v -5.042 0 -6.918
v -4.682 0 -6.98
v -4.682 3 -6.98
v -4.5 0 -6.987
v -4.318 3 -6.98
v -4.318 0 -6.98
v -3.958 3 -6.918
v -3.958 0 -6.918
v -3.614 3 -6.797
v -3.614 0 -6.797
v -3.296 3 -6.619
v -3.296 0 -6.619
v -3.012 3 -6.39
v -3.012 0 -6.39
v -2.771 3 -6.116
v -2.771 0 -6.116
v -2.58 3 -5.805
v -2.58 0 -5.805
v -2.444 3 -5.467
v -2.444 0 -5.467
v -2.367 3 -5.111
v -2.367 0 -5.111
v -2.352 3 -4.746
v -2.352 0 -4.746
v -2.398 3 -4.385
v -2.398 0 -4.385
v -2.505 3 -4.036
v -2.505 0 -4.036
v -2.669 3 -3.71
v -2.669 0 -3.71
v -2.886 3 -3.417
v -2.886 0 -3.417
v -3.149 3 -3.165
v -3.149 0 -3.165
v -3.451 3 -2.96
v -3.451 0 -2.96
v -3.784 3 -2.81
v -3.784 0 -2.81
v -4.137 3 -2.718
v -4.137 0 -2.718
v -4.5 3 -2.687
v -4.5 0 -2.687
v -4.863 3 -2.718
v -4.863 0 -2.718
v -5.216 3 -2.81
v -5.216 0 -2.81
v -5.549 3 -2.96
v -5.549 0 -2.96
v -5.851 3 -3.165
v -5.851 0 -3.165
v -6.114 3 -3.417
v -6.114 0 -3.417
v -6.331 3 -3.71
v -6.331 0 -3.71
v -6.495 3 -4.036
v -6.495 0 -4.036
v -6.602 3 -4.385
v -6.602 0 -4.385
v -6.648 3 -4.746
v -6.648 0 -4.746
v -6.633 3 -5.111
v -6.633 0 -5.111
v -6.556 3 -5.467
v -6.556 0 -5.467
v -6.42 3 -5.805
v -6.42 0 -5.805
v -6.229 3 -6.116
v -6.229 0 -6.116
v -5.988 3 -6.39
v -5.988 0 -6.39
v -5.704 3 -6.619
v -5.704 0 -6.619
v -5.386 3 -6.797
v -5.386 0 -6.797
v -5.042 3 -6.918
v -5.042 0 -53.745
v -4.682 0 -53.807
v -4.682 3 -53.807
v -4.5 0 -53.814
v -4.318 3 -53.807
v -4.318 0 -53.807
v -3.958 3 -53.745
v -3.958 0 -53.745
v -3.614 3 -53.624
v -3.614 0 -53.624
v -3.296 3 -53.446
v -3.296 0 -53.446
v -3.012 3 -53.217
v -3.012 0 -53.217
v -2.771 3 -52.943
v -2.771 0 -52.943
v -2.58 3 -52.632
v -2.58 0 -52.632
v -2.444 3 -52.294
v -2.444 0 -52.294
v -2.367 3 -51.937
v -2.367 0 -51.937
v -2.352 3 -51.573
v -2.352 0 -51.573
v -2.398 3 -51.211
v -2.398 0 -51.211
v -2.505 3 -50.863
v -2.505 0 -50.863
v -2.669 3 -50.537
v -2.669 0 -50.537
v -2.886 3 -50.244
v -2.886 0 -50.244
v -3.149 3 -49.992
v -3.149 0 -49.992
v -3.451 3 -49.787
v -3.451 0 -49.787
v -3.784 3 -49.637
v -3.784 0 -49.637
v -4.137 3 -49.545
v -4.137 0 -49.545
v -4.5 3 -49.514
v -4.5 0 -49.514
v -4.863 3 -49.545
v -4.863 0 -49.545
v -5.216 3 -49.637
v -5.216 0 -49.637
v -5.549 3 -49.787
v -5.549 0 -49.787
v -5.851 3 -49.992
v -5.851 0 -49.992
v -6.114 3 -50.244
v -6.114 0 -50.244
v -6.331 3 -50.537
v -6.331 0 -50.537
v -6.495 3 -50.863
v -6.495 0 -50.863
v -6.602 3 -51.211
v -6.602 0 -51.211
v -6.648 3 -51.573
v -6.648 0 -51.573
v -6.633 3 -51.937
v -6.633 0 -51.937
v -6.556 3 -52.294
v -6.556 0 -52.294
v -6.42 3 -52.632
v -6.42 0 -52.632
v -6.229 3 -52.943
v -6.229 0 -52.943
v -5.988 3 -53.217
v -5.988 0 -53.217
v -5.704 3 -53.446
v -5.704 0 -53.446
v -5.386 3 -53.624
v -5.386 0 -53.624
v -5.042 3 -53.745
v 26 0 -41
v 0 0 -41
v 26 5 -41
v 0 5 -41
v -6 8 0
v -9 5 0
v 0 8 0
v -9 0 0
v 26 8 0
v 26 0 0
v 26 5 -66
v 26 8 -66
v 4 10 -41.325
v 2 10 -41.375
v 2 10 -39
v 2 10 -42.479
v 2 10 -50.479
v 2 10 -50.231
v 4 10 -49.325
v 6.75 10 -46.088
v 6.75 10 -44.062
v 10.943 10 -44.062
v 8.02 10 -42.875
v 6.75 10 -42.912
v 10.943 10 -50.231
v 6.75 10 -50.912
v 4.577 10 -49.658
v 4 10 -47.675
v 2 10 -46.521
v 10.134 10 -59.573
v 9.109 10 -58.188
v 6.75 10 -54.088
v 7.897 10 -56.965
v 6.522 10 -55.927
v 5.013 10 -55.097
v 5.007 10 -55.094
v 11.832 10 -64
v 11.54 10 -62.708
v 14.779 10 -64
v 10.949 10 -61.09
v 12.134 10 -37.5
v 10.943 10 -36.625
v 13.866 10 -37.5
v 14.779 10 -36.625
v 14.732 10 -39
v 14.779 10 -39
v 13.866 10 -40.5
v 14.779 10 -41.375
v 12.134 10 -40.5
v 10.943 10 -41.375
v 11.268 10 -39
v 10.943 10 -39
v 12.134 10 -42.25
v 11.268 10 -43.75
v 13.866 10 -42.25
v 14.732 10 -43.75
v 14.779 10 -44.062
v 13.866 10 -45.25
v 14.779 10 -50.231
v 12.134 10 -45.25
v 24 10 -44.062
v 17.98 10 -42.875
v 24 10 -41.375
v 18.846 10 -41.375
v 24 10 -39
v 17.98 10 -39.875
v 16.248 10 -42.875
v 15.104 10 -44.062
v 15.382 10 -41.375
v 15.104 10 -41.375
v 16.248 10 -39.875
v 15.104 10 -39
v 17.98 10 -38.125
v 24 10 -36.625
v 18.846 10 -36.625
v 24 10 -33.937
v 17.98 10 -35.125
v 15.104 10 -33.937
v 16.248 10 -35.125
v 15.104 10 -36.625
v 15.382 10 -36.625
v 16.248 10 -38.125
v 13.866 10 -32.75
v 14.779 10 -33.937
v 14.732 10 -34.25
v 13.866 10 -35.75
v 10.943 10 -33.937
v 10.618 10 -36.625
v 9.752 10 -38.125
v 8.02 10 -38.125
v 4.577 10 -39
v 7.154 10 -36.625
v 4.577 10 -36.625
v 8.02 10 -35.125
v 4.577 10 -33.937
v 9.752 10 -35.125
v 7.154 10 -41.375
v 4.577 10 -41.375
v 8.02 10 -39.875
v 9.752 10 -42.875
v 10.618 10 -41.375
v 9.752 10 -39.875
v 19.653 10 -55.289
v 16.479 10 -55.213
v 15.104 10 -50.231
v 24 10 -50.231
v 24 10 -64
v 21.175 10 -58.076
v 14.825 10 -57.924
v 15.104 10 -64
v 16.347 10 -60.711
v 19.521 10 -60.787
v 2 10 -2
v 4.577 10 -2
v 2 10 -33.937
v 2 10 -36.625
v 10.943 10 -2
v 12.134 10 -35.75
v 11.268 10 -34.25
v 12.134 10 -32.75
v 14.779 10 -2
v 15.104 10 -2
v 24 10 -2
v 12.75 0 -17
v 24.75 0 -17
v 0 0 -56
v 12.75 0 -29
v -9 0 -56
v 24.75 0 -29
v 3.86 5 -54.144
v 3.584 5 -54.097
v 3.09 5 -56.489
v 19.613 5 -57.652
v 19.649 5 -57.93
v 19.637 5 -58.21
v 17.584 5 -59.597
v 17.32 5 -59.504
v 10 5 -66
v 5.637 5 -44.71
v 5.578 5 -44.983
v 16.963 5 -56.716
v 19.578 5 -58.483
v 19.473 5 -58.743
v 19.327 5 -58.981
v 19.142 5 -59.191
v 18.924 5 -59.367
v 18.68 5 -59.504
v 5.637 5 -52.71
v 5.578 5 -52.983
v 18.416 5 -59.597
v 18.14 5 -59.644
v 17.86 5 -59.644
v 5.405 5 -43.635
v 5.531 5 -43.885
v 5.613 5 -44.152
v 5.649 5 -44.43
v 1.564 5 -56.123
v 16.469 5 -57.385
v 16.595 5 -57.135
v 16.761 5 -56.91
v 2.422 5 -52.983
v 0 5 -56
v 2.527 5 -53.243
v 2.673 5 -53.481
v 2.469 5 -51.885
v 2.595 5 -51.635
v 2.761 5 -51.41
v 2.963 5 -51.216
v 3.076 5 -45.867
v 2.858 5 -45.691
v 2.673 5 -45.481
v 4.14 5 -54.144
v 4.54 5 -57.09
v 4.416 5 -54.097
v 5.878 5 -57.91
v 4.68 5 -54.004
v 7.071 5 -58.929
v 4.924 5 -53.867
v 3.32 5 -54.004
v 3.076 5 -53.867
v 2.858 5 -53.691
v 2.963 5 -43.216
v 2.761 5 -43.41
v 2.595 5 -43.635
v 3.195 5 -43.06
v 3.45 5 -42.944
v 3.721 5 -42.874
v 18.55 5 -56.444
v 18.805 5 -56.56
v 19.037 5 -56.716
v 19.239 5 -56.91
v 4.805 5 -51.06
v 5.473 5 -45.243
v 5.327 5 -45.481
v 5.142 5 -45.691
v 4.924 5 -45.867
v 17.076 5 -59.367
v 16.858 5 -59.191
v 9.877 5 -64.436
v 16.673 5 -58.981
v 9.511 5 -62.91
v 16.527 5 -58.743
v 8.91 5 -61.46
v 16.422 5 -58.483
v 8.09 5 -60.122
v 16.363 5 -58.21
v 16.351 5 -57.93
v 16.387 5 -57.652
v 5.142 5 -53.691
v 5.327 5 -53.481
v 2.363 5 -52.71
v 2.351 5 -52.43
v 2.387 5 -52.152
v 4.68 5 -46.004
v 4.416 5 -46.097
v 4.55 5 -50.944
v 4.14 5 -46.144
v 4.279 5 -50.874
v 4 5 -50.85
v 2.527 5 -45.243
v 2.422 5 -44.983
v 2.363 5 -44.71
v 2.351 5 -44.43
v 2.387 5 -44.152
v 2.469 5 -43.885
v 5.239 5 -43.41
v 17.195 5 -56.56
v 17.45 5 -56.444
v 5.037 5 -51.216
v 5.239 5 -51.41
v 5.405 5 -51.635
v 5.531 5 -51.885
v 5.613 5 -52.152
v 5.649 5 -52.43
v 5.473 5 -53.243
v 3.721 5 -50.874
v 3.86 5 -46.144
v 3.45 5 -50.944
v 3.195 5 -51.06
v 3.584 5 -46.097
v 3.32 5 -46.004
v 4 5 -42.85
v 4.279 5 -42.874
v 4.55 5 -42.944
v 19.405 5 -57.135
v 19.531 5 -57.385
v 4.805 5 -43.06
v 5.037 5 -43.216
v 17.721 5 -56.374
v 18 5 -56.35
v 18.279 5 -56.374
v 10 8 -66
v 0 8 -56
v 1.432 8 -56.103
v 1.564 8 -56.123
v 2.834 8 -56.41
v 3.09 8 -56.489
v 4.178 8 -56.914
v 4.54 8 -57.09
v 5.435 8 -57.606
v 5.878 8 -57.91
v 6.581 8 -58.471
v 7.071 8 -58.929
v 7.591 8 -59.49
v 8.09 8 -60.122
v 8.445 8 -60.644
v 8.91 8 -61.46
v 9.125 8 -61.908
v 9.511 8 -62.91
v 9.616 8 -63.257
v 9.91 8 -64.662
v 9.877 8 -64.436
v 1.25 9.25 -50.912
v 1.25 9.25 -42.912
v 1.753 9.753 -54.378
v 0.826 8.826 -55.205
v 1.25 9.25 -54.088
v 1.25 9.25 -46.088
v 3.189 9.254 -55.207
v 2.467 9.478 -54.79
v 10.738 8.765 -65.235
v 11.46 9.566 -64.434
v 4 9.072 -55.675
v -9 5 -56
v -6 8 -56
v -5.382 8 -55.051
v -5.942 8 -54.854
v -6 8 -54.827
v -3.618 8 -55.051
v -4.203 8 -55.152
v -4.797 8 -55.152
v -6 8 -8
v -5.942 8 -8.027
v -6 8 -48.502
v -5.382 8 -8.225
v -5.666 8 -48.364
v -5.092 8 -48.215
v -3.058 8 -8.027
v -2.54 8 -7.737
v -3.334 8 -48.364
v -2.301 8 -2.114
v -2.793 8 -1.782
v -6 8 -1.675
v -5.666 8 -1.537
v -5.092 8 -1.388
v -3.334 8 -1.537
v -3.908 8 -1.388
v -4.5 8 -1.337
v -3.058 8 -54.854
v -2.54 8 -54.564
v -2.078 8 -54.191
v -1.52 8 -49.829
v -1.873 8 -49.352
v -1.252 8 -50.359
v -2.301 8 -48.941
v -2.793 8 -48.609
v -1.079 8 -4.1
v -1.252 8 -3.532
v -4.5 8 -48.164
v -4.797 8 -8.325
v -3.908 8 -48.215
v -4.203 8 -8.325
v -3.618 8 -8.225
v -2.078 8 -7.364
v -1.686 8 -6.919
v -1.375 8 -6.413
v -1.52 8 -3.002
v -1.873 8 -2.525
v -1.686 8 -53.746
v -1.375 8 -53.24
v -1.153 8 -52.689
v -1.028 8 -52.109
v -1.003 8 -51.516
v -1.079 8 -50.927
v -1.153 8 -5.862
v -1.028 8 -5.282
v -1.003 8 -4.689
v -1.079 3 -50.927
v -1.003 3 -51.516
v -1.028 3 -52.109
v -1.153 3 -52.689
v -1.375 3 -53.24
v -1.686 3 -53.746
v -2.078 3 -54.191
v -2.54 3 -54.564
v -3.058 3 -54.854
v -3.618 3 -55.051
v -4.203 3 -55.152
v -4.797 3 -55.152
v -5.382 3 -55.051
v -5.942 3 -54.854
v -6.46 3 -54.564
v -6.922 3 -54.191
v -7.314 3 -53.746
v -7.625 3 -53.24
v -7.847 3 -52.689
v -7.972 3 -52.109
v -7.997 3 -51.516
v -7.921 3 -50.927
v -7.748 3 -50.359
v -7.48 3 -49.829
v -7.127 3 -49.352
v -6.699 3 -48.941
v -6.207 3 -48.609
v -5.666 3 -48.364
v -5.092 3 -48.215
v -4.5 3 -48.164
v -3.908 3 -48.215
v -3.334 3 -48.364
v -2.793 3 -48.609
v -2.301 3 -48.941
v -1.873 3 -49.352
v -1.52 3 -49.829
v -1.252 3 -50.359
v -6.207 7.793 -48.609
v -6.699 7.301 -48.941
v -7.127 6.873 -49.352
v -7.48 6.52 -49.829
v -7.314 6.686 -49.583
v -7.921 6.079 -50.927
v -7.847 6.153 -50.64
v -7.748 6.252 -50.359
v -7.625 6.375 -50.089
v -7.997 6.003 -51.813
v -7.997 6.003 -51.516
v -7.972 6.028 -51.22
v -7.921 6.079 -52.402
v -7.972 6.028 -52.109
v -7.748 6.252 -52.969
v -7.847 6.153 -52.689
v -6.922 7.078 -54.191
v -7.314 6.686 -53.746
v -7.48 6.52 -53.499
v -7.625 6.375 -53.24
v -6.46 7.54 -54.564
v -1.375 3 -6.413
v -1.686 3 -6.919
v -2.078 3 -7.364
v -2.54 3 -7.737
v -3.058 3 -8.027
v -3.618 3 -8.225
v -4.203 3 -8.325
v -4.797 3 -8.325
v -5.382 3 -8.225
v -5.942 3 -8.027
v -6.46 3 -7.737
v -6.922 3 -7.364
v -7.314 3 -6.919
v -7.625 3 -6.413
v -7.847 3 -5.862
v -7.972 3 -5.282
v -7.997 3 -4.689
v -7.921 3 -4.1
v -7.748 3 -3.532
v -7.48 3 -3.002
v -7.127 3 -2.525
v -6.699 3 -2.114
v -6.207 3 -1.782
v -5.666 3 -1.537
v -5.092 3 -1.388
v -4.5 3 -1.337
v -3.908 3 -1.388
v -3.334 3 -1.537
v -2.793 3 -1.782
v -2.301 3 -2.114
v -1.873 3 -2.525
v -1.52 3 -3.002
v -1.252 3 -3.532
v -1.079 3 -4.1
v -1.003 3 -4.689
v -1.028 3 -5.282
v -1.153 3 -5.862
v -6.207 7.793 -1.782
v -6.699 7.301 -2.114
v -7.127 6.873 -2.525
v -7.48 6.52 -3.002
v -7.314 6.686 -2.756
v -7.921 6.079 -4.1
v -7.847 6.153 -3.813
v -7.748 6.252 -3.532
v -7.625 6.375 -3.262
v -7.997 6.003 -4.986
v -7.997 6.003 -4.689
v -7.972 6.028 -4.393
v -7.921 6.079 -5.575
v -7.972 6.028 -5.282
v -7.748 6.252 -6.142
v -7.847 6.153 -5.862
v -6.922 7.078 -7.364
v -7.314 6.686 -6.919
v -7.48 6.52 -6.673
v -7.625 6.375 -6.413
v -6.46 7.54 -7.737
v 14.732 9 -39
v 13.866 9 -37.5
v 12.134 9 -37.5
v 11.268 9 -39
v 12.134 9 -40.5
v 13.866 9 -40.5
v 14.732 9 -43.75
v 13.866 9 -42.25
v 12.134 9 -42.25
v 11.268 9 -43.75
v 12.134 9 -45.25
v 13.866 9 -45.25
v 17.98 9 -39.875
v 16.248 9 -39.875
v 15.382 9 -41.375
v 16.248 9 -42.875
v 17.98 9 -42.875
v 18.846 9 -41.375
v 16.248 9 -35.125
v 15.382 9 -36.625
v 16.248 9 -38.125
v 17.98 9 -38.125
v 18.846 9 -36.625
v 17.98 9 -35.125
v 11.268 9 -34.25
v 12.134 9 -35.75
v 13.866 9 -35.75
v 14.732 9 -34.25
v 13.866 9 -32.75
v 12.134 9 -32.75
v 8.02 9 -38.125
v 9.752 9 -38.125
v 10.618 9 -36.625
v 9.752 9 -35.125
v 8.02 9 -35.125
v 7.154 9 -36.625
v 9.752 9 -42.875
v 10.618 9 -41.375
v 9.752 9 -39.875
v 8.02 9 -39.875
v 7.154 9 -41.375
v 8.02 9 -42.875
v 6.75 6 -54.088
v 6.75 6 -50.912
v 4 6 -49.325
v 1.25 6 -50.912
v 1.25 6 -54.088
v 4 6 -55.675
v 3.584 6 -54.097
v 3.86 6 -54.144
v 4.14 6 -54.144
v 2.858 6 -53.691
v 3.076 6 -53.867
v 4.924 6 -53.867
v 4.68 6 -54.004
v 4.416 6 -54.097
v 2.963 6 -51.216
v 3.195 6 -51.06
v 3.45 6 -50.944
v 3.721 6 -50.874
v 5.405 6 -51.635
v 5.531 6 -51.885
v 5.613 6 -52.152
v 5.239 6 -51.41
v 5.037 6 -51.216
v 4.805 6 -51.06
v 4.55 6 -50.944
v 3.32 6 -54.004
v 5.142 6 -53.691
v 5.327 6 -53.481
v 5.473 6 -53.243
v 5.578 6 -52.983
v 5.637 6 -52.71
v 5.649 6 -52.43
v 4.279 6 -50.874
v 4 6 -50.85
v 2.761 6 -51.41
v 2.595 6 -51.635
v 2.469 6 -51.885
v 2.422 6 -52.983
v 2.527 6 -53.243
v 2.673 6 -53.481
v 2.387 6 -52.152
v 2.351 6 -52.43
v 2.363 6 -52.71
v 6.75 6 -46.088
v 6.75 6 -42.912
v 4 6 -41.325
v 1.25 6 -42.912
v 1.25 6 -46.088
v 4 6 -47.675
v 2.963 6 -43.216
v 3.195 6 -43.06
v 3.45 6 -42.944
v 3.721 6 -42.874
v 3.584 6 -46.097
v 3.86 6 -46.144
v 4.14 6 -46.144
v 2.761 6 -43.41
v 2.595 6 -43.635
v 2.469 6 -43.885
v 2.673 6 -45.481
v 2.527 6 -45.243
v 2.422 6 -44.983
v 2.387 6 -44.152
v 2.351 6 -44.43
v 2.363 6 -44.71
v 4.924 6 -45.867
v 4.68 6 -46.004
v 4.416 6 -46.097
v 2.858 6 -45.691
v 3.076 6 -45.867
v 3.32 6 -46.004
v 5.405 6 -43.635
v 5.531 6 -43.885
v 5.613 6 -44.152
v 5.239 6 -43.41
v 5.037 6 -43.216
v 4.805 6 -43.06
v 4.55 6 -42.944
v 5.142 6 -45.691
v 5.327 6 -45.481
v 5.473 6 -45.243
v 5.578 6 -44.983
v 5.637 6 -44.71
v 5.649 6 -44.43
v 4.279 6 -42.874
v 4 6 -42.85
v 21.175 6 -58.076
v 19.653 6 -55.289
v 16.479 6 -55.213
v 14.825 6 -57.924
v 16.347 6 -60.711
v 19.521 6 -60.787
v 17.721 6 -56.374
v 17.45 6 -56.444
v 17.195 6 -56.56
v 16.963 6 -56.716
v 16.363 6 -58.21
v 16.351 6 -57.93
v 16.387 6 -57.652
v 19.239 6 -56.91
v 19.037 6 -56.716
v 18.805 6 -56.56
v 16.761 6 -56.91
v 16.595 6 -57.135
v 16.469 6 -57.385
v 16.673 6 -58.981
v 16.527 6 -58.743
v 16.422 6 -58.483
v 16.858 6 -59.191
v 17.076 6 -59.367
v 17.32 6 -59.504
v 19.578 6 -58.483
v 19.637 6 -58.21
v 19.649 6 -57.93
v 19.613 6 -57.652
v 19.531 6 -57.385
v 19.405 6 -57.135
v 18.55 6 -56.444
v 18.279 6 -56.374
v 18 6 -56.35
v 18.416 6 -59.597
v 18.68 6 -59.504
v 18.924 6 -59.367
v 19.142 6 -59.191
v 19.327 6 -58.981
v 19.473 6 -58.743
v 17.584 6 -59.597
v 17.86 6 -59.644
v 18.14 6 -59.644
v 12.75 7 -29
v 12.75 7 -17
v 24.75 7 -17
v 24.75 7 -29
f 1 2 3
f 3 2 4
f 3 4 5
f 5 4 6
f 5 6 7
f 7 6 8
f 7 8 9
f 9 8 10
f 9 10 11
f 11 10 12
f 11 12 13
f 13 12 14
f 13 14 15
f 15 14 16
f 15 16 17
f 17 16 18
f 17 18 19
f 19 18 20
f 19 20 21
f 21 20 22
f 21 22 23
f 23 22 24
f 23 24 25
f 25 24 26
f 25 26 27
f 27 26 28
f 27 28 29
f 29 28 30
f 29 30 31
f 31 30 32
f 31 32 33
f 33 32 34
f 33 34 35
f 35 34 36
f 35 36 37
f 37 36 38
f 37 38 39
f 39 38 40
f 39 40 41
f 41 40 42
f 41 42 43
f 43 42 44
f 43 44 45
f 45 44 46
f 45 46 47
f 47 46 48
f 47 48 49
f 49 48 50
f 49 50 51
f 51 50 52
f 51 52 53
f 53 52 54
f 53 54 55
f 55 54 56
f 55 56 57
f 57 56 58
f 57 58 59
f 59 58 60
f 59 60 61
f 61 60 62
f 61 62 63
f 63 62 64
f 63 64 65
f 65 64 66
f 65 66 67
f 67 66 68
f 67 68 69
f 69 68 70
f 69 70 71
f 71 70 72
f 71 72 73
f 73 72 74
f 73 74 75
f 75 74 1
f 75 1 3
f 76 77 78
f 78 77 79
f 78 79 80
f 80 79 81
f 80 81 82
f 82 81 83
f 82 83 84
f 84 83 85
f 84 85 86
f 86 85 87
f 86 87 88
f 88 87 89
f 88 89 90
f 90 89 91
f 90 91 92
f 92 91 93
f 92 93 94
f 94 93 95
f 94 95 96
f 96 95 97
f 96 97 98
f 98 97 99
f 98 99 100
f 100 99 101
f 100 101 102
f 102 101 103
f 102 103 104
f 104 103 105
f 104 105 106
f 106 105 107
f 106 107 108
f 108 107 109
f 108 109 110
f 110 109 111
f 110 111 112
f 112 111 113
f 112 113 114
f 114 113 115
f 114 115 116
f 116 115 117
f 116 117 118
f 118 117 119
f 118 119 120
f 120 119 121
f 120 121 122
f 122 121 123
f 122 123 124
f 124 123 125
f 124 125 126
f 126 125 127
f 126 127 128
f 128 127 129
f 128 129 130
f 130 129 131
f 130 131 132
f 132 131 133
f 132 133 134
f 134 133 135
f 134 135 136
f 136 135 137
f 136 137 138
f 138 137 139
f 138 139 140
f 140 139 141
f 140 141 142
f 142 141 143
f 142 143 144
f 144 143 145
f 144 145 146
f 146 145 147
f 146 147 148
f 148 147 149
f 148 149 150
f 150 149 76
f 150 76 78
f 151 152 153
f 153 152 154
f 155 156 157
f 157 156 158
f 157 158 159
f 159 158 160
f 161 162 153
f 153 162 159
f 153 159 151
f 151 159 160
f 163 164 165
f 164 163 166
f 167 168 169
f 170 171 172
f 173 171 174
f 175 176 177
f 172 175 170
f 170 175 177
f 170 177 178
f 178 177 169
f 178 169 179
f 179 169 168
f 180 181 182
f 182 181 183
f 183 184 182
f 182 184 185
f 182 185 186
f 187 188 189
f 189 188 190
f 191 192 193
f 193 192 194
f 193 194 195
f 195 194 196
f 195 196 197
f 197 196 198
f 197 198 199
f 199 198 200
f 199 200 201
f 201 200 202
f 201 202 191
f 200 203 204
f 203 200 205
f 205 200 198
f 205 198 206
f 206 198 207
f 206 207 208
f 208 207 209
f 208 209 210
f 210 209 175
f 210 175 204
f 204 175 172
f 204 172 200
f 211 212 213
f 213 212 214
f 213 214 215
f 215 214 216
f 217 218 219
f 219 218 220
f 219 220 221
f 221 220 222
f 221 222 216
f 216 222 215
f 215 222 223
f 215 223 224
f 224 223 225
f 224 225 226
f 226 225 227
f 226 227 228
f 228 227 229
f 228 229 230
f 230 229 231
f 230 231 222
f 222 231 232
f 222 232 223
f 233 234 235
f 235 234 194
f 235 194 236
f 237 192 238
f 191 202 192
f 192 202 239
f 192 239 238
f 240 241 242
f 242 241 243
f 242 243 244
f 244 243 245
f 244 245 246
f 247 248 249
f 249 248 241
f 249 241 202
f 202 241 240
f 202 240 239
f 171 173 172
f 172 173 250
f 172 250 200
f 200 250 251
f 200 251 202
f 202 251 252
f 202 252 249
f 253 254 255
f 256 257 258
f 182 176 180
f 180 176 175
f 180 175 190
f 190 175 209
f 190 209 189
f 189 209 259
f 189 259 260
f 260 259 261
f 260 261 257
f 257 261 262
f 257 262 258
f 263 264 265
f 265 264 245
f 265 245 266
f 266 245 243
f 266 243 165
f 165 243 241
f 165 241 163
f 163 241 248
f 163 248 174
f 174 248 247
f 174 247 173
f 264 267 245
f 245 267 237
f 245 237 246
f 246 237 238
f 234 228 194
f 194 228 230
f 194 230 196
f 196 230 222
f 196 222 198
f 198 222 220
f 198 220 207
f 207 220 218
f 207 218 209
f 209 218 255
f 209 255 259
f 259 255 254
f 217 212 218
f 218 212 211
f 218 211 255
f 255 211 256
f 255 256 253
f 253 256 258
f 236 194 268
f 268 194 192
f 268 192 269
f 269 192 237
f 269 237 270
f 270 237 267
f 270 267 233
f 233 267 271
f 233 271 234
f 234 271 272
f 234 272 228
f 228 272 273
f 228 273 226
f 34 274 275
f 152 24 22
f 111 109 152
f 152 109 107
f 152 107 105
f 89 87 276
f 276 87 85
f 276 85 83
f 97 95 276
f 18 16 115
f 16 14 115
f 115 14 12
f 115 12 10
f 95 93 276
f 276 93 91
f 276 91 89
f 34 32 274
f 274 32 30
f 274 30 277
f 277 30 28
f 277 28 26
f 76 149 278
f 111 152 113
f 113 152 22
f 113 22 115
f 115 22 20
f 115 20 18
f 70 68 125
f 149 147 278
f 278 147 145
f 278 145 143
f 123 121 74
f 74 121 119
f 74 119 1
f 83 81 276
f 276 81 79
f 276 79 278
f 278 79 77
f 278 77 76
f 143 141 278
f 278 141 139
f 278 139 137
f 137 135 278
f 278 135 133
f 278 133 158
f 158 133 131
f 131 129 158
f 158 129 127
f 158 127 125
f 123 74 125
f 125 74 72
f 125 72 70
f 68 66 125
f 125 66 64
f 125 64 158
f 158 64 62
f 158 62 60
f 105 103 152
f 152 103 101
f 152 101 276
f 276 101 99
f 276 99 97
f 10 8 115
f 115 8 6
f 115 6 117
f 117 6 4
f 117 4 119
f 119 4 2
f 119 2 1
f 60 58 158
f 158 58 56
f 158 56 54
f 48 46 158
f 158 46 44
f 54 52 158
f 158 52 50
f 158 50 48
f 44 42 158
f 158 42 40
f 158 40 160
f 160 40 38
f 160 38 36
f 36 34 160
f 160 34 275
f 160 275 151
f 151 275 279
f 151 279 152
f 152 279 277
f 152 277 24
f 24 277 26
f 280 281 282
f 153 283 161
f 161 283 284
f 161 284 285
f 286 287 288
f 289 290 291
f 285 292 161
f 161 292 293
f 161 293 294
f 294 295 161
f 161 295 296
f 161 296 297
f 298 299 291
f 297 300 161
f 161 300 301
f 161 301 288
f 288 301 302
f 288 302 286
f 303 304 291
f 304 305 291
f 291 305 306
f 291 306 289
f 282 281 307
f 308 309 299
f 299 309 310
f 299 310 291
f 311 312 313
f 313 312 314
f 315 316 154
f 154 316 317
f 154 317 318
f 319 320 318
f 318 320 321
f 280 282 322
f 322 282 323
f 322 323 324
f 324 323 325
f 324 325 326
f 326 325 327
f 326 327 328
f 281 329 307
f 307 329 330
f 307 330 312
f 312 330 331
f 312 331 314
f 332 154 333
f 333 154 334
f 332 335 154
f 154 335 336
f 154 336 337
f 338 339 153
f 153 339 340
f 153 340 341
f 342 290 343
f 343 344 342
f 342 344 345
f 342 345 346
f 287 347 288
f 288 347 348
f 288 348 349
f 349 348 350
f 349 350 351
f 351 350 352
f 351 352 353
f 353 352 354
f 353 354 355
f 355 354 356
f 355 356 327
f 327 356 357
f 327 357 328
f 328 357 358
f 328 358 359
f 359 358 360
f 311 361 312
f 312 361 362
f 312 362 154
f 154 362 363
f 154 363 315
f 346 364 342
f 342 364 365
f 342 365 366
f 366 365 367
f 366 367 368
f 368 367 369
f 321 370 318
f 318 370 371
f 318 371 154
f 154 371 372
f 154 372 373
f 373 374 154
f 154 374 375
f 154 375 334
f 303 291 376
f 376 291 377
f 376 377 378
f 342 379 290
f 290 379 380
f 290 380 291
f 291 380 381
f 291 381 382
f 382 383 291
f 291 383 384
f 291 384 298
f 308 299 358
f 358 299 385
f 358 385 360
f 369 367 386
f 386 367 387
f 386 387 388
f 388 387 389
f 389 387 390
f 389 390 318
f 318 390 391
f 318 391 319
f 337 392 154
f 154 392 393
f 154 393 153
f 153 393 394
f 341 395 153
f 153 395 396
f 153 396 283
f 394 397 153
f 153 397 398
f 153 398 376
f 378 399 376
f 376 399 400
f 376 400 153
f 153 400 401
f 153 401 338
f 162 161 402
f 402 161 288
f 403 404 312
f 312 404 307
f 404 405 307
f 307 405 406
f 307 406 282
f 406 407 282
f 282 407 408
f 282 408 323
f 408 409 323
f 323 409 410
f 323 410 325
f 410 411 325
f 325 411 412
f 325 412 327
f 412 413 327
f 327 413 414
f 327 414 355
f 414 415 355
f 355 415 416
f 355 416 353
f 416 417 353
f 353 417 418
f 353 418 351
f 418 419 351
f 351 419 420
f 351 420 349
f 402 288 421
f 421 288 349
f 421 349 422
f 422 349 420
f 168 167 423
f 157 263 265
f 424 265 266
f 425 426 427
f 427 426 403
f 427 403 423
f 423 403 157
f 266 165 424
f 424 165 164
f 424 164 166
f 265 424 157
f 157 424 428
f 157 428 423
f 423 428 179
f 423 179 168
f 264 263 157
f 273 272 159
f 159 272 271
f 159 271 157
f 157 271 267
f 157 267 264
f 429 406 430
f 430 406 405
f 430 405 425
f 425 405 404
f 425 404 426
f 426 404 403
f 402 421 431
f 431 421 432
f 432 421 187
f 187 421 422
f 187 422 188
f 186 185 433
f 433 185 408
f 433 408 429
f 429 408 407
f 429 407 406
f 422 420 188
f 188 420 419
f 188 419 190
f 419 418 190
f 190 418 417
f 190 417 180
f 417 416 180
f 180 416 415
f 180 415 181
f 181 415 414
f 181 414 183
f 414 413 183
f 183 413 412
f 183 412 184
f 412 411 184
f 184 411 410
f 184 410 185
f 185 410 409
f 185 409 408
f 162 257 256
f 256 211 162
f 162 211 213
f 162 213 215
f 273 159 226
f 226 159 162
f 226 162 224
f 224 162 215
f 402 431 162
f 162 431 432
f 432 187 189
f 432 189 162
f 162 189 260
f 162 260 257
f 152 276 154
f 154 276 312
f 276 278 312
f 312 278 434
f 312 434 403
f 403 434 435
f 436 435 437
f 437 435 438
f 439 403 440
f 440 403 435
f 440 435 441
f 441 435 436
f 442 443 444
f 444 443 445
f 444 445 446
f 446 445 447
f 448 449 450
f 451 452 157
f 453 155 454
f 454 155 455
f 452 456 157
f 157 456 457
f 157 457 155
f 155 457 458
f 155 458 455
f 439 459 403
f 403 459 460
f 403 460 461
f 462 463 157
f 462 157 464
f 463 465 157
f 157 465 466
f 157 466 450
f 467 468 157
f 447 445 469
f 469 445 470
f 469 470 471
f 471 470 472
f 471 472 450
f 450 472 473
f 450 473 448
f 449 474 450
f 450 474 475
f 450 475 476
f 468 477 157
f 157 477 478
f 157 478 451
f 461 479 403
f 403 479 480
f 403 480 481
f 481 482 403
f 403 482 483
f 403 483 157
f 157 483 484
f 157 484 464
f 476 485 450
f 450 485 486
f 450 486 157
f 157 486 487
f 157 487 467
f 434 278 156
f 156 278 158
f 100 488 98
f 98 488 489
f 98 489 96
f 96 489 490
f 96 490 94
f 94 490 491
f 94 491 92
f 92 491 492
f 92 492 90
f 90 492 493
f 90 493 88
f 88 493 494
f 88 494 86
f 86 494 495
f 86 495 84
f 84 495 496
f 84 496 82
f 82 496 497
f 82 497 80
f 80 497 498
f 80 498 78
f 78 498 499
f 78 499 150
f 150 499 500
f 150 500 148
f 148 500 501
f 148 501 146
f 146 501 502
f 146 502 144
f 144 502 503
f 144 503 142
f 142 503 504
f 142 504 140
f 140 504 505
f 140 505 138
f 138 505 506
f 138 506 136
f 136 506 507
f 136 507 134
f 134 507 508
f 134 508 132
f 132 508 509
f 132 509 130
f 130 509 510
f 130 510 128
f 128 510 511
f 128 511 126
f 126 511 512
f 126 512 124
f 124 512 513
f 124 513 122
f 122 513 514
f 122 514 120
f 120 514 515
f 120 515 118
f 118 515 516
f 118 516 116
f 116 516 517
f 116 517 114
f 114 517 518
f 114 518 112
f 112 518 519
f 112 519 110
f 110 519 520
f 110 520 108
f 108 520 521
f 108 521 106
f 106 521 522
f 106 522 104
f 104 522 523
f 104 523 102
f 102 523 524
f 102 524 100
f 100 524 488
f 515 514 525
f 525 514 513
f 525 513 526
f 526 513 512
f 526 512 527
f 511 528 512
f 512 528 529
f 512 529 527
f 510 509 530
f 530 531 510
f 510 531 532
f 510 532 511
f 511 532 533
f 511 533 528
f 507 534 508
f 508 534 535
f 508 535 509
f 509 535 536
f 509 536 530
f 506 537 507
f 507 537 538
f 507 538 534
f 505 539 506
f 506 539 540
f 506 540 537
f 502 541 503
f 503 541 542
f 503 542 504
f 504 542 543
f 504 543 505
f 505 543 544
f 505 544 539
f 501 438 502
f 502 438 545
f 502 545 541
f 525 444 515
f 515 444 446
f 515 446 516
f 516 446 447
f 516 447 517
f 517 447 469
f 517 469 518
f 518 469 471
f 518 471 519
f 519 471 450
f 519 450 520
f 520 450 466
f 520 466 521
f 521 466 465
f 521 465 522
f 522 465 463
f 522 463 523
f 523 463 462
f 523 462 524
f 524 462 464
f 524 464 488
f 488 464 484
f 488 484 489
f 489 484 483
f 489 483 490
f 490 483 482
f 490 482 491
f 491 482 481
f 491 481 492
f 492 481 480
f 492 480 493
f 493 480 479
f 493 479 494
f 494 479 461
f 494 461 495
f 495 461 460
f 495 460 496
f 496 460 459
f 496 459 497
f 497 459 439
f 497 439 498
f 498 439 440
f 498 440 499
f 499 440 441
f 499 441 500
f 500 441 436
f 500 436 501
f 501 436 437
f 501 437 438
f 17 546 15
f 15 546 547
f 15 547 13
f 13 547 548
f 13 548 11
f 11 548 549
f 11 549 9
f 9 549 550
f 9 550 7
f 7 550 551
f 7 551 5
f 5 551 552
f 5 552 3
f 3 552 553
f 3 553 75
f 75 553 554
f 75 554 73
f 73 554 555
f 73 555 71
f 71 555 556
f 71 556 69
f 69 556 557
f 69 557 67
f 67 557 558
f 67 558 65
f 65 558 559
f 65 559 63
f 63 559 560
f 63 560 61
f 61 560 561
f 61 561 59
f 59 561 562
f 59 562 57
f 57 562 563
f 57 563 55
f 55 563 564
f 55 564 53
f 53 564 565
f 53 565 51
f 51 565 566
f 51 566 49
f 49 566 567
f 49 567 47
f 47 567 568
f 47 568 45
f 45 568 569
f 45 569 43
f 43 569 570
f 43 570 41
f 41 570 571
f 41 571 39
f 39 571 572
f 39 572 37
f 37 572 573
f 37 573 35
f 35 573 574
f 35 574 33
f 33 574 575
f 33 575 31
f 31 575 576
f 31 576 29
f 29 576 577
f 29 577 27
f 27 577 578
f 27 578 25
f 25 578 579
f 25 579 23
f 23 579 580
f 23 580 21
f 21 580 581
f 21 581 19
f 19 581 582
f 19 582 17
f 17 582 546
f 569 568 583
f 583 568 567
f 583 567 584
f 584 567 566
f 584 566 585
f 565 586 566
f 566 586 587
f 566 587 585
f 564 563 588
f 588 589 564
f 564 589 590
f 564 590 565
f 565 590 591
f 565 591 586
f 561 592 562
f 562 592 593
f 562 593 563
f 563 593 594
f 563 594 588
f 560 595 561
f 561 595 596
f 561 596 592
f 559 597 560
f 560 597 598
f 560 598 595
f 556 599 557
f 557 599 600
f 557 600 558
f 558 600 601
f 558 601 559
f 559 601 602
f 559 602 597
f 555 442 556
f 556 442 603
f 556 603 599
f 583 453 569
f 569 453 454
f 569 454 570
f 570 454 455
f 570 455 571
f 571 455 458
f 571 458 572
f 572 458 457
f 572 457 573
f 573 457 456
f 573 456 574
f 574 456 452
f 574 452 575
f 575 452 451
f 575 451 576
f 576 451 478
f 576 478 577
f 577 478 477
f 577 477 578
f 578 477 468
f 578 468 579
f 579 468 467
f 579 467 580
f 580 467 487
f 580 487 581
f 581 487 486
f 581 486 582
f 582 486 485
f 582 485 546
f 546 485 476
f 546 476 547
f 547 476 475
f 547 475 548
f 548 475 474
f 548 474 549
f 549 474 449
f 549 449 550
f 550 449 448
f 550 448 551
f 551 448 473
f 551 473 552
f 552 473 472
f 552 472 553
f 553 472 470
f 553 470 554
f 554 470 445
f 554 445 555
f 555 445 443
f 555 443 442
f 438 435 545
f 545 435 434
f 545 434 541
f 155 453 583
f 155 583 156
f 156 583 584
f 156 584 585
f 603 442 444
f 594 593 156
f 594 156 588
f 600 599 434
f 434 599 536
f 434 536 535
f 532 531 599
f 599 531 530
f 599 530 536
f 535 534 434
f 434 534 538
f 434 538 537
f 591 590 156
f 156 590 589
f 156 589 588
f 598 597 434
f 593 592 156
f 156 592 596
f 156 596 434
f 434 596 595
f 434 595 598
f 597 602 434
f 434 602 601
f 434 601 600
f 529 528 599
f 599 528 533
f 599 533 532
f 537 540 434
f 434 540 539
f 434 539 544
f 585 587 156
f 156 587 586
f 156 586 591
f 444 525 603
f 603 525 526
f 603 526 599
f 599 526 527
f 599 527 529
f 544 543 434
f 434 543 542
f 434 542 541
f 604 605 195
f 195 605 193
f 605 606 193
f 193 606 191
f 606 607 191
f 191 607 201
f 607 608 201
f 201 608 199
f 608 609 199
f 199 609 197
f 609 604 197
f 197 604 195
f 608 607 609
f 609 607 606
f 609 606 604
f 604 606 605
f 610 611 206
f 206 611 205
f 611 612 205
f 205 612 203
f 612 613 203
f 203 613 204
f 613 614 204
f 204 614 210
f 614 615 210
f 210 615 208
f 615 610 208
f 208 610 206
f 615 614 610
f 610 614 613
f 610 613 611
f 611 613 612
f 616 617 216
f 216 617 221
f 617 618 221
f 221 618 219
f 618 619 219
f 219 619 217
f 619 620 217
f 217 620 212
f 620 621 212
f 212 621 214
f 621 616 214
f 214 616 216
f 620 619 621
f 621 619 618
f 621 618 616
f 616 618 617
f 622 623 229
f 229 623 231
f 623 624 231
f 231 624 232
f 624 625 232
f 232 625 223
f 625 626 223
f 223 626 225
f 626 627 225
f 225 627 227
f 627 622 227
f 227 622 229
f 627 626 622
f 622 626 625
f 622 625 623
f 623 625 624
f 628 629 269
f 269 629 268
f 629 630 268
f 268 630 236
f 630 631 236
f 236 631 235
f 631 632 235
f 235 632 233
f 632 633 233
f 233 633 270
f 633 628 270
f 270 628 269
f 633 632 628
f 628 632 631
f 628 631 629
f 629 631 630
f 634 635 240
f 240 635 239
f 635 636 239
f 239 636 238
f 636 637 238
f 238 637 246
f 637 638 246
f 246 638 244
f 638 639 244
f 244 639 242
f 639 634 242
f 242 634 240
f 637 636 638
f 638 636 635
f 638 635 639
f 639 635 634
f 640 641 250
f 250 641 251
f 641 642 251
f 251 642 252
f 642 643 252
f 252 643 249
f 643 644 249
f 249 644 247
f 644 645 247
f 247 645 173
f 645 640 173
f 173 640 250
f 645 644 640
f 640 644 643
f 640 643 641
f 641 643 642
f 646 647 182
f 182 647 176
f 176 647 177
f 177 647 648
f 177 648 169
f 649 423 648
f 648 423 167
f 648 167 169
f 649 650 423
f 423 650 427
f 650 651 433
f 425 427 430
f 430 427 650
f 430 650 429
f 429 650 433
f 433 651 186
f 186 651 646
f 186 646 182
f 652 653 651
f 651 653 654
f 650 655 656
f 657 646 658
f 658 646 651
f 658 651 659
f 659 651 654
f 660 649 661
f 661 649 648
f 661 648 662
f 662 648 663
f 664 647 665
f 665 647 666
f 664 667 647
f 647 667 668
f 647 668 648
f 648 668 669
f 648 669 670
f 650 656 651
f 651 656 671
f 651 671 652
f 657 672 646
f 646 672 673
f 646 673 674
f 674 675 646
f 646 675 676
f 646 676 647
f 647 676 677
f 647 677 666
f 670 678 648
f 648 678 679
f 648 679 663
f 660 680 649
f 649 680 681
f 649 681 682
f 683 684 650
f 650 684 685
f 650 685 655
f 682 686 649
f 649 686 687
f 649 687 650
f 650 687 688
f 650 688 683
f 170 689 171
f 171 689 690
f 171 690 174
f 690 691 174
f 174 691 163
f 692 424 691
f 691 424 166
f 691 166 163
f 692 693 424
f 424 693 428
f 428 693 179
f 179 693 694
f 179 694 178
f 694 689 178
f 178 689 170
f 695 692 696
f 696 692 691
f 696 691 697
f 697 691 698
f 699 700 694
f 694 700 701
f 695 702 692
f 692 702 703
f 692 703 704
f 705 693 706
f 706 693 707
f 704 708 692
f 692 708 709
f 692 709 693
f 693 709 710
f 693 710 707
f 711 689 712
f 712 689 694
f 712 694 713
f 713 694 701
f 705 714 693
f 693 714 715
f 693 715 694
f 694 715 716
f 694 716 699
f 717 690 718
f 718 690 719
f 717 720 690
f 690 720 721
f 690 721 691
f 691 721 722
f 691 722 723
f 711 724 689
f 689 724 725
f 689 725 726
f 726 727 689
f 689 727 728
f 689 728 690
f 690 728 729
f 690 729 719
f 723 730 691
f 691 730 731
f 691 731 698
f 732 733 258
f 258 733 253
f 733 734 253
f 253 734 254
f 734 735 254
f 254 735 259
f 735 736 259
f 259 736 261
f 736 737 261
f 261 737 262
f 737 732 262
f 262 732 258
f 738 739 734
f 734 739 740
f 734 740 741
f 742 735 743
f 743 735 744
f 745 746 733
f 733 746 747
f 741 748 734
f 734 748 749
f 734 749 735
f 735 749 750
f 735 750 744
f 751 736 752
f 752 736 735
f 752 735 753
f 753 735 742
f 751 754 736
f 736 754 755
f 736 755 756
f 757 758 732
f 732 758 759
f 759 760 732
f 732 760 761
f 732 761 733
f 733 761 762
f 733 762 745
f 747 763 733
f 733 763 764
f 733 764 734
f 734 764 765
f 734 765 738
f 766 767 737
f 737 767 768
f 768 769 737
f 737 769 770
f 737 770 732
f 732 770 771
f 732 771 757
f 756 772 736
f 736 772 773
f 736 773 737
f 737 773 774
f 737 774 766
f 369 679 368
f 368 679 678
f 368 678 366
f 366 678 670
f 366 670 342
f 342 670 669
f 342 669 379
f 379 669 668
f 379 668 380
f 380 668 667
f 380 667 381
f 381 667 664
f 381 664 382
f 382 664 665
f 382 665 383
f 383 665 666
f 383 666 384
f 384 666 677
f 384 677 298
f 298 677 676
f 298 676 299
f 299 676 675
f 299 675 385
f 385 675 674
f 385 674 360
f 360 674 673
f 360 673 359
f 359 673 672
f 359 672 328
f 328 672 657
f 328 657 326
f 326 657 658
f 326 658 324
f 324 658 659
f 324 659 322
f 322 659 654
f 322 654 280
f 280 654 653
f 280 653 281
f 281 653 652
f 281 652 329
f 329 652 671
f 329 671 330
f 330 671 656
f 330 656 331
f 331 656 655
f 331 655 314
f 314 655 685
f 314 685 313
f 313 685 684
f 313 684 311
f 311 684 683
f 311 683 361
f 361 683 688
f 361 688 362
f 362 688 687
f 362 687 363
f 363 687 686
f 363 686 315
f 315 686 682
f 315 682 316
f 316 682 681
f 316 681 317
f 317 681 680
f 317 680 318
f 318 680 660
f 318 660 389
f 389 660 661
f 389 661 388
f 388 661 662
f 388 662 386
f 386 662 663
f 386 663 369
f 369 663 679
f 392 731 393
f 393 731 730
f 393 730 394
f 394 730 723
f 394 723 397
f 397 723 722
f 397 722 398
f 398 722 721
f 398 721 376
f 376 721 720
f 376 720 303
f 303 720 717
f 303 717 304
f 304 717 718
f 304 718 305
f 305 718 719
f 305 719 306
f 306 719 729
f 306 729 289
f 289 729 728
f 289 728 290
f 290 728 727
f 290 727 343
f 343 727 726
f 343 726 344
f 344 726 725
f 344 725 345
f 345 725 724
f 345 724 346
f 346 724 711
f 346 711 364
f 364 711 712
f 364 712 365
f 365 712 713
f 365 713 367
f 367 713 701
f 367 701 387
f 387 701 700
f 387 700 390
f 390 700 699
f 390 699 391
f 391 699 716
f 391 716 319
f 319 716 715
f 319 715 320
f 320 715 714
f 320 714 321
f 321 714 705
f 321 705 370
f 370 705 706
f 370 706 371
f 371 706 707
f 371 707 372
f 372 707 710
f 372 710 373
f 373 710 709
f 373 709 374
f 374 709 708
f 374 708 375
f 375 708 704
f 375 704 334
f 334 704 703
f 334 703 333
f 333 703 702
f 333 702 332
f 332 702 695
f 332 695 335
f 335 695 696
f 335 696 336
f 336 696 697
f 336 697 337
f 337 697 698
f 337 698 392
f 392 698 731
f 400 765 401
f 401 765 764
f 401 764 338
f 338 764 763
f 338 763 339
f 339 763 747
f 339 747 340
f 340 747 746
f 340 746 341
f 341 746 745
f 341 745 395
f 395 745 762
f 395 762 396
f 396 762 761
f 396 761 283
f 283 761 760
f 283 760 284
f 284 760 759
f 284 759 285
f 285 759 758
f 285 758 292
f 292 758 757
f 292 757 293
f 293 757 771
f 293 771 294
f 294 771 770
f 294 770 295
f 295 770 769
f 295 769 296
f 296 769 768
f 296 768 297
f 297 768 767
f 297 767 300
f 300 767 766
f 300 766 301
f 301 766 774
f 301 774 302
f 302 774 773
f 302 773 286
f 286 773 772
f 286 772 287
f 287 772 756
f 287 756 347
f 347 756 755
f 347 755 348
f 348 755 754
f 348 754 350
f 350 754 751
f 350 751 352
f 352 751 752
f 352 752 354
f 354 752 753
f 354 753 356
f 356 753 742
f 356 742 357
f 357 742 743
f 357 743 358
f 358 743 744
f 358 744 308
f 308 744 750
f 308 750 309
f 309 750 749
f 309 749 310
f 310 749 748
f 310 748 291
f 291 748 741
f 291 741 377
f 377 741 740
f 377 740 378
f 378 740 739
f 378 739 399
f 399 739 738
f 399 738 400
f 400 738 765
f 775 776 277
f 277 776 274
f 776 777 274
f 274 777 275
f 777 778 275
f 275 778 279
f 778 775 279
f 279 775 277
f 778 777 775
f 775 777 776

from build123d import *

# Parameters (mm, degrees)
SKETCH1_W           = 26
SKETCH1_H           = 41
BOSS_EXTRUDE1_DEPTH = 10
SKETCH2_W           = 26
SKETCH2_H           = 5
BOSS_EXTRUDE2_DEPTH = 25
CUT_EXTRUDE1_REACH  = 73.638
CHAMFER1_SIZE       = 2
SKETCH4_W           = 56
SKETCH4_H           = 8
BOSS_EXTRUDE3_DEPTH = 9
CUT_EXTRUDE2_REACH  = 73.386
SKETCH5_R           = 2.15
SKETCH6_R           = 3.5
CUT_EXTRUDE3_DEPTH  = 5
CHAMFER3_SIZE       = 3
CUT_EXTRUDE5_DEPTH  = 1
CUT_EXTRUDE6_DEPTH  = 4
CUT_EXTRUDE7_REACH  = 73.638
SKETCH12_R          = 1.65
SKETCH14_W          = 12
SKETCH14_H          = 12
CUT_EXTRUDE9_DEPTH  = 7


with BuildPart() as part:
    # Sketch1 → Boss-Extrude1 (new body)
    with BuildSketch(Plane(origin=(0, 0, 0), x_dir=(1, 0, 0), z_dir=(0, 1, 0))):
        with Locations((13, 20.5)):
            Rectangle(SKETCH1_W, SKETCH1_H)
    extrude(amount=BOSS_EXTRUDE1_DEPTH)

    # Sketch2 → Boss-Extrude2 (add)
    with BuildSketch(Plane(origin=(0, 0, -41), x_dir=(-1, 0, 0), z_dir=(0, 0, -1))):
        with Locations((-13, 7.5)):
            Rectangle(SKETCH2_W, SKETCH2_H)
    extrude(amount=BOSS_EXTRUDE2_DEPTH)

    # Sketch3 → Cut-Extrude1 (cut, up to next)
    with BuildSketch(Plane(origin=(0, 10, 0), x_dir=(1, 0, 0), z_dir=(0, 1, 0)), mode=Mode.PRIVATE) as cut_extrude1_sk1:
        with BuildLine():
            Line((0, 56), (0, 66))
            Line((0, 66), (10, 66))
            ThreePointArc((10, 66), (7.071067812, 58.928932188), (0, 56))
        make_face()
    cut_extrude1_tool1 = extrude(cut_extrude1_sk1.sketch, amount=-CUT_EXTRUDE1_REACH, mode=Mode.PRIVATE) & part.part
    add(cut_extrude1_tool1.solids().sort_by_distance((4.244132, 10, -61.755868))[0], mode=Mode.SUBTRACT)

    # Chamfer1
    chamfer1_edges = [part.edges().sort_by_distance(p)[0] for p in [
        (26, 10, -33),
        (18, 10, -66),
        (0, 10, -28),
        (7.071067812, 10, -58.928932188),
        (13, 10, 0),
    ]]
    chamfer(chamfer1_edges, length=CHAMFER1_SIZE)

    # Sketch4 → Boss-Extrude3 (add)
    with BuildSketch(Plane.ZY):
        with Locations((-28, 4)):
            Rectangle(SKETCH4_W, SKETCH4_H)
    extrude(amount=BOSS_EXTRUDE3_DEPTH)

    # Sketch5 → Cut-Extrude2 (cut, up to next)
    with BuildSketch(Plane(origin=(0, 8, 0), x_dir=(1, 0, 0), z_dir=(0, 1, 0)), mode=Mode.PRIVATE) as cut_extrude2_sk1:
        with Locations(Location((-4.5, 51.637478231, 0), (0, 0, 270))):
            Circle(SKETCH5_R)
    cut_extrude2_tool1 = extrude(cut_extrude2_sk1.sketch, amount=-CUT_EXTRUDE2_REACH, mode=Mode.PRIVATE) & part.part
    # Sketch5 → Cut-Extrude2 (cut, up to next)
    with BuildSketch(Plane(origin=(0, 8, 0), x_dir=(1, 0, 0), z_dir=(0, 1, 0)), mode=Mode.PRIVATE) as cut_extrude2_sk2:
        with Locations(Location((-4.5, 4.837478231, 0), (0, 0, 270))):
            Circle(SKETCH5_R)
    cut_extrude2_tool2 = extrude(cut_extrude2_sk2.sketch, amount=-CUT_EXTRUDE2_REACH, mode=Mode.PRIVATE) & part.part
    add(cut_extrude2_tool1.solids().sort_by_distance((-4.5, 8, -51.637478))[0], mode=Mode.SUBTRACT)
    add(cut_extrude2_tool2.solids().sort_by_distance((-4.5, 8, -4.837478))[0], mode=Mode.SUBTRACT)

    # Sketch6 → Cut-Extrude3 (cut)
    with BuildSketch(Plane(origin=(0, 8, 0), x_dir=(1, 0, 0), z_dir=(0, 1, 0))):
        with Locations(Location((-4.5, 51.637478231, 0), (0, 0, 270))):
            Circle(SKETCH6_R)
        with Locations(Location((-4.5, 4.837478231, 0), (0, 0, 270))):
            Circle(SKETCH6_R)
    extrude(amount=-CUT_EXTRUDE3_DEPTH, mode=Mode.SUBTRACT)

    # Chamfer3
    # the kernel refuses this chamfer: 3 mm, written as the material it takes off along each edge
    with BuildSketch(Plane(origin=(-9, 8, -63.715048964), x_dir=(-0.0274958766105862, -0.9996219169112968, 0), z_dir=(0, 0, 1))) as chamfer3_piece_1:
        Polygon((CHAMFER3_SIZE * 0.999621916911, CHAMFER3_SIZE * 0.0274958766106), (-CHAMFER3_SIZE * 0.0274958766106, CHAMFER3_SIZE * 0.999621916911), (0, 0), align=None)
    extrude(amount=71.430097928, mode=Mode.SUBTRACT)

    # Sketch10 → Cut-Extrude5 (cut)
    with BuildSketch(Plane(origin=(0, 10, 0), x_dir=(1, 0, 0), z_dir=(0, 1, 0))):
        Polygon((14.732050808, 39), (13.866025404, 40.5), (12.133974596, 40.5), (11.267949192, 39), (12.133974596, 37.5), (13.866025404, 37.5), align=None)
        Polygon((14.732050808, 43.75), (13.866025404, 45.25), (12.133974596, 45.25), (11.267949192, 43.75), (12.133974596, 42.25), (13.866025404, 42.25), align=None)
        Polygon((17.979646072, 39.875), (18.845671476, 41.375), (17.979646072, 42.875), (16.247595264, 42.875), (15.38156986, 41.375), (16.247595264, 39.875), align=None)
        Polygon((16.247595264, 35.125), (17.979646072, 35.125), (18.845671476, 36.625), (17.979646072, 38.125), (16.247595264, 38.125), (15.38156986, 36.625), align=None)
        Polygon((11.267949192, 34.25), (12.133974596, 32.75), (13.866025404, 32.75), (14.732050808, 34.25), (13.866025404, 35.75), (12.133974596, 35.75), align=None)
        Polygon((8.020353928, 38.125), (7.154328524, 36.625), (8.020353928, 35.125), (9.752404736, 35.125), (10.61843014, 36.625), (9.752404736, 38.125), align=None)
        Polygon((9.752404736, 42.875), (8.020353928, 42.875), (7.154328524, 41.375), (8.020353928, 39.875), (9.752404736, 39.875), (10.61843014, 41.375), align=None)
    extrude(amount=-CUT_EXTRUDE5_DEPTH, mode=Mode.SUBTRACT)

    # Sketch11 → Cut-Extrude6 (cut)
    with BuildSketch(Plane(origin=(0, 10, 0), x_dir=(1, 0, 0), z_dir=(0, 1, 0))):
        Polygon((6.75, 46.08771324), (4, 47.675426481), (1.25, 46.08771324), (1.25, 42.91228676), (4, 41.324573519), (6.75, 42.91228676), align=None)
        Polygon((6.75, 54.08771324), (4, 55.675426481), (1.25, 54.08771324), (1.25, 50.91228676), (4, 49.324573519), (6.75, 50.91228676), align=None)
        Polygon((21.174508901, 58.076331968), (19.521149027, 60.787371337), (16.346640126, 60.711039369), (14.825491099, 57.923668032), (16.478850973, 55.212628663), (19.653359874, 55.288960631), align=None)
    extrude(amount=-CUT_EXTRUDE6_DEPTH, mode=Mode.SUBTRACT)

    # Sketch12 → Cut-Extrude7 (cut, up to next)
    with BuildSketch(Plane(origin=(0, 10, 0), x_dir=(1, 0, 0), z_dir=(0, 1, 0)), mode=Mode.PRIVATE) as cut_extrude7_sk1:
        with Locations(Location((4, 52.5, 0), (0, 0, 270))):
            Circle(SKETCH12_R)
    cut_extrude7_tool1 = extrude(cut_extrude7_sk1.sketch, amount=-CUT_EXTRUDE7_REACH, mode=Mode.PRIVATE) & part.part
    # Sketch12 → Cut-Extrude7 (cut, up to next)
    with BuildSketch(Plane(origin=(0, 10, 0), x_dir=(1, 0, 0), z_dir=(0, 1, 0)), mode=Mode.PRIVATE) as cut_extrude7_sk2:
        with Locations(Location((4, 44.5, 0), (0, 0, 270))):
            Circle(SKETCH12_R)
    cut_extrude7_tool2 = extrude(cut_extrude7_sk2.sketch, amount=-CUT_EXTRUDE7_REACH, mode=Mode.PRIVATE) & part.part
    # Sketch12 → Cut-Extrude7 (cut, up to next)
    with BuildSketch(Plane(origin=(0, 10, 0), x_dir=(1, 0, 0), z_dir=(0, 1, 0)), mode=Mode.PRIVATE) as cut_extrude7_sk3:
        with Locations(Location((18, 58, 0), (0, 0, 270))):
            Circle(SKETCH12_R)
    cut_extrude7_tool3 = extrude(cut_extrude7_sk3.sketch, amount=-CUT_EXTRUDE7_REACH, mode=Mode.PRIVATE) & part.part
    add(cut_extrude7_tool1.solids().sort_by_distance((4, 10, -52.5))[0], mode=Mode.SUBTRACT)
    add(cut_extrude7_tool2.solids().sort_by_distance((4, 10, -44.5))[0], mode=Mode.SUBTRACT)
    add(cut_extrude7_tool3.solids().sort_by_distance((18, 10, -58))[0], mode=Mode.SUBTRACT)

    # Sketch14 → Cut-Extrude9 (cut)
    with BuildSketch(Plane.XZ):
        with Locations((18.75, -23)):
            Rectangle(SKETCH14_W, SKETCH14_H)
    extrude(amount=-CUT_EXTRUDE9_DEPTH, mode=Mode.SUBTRACT)


solid = part.part
